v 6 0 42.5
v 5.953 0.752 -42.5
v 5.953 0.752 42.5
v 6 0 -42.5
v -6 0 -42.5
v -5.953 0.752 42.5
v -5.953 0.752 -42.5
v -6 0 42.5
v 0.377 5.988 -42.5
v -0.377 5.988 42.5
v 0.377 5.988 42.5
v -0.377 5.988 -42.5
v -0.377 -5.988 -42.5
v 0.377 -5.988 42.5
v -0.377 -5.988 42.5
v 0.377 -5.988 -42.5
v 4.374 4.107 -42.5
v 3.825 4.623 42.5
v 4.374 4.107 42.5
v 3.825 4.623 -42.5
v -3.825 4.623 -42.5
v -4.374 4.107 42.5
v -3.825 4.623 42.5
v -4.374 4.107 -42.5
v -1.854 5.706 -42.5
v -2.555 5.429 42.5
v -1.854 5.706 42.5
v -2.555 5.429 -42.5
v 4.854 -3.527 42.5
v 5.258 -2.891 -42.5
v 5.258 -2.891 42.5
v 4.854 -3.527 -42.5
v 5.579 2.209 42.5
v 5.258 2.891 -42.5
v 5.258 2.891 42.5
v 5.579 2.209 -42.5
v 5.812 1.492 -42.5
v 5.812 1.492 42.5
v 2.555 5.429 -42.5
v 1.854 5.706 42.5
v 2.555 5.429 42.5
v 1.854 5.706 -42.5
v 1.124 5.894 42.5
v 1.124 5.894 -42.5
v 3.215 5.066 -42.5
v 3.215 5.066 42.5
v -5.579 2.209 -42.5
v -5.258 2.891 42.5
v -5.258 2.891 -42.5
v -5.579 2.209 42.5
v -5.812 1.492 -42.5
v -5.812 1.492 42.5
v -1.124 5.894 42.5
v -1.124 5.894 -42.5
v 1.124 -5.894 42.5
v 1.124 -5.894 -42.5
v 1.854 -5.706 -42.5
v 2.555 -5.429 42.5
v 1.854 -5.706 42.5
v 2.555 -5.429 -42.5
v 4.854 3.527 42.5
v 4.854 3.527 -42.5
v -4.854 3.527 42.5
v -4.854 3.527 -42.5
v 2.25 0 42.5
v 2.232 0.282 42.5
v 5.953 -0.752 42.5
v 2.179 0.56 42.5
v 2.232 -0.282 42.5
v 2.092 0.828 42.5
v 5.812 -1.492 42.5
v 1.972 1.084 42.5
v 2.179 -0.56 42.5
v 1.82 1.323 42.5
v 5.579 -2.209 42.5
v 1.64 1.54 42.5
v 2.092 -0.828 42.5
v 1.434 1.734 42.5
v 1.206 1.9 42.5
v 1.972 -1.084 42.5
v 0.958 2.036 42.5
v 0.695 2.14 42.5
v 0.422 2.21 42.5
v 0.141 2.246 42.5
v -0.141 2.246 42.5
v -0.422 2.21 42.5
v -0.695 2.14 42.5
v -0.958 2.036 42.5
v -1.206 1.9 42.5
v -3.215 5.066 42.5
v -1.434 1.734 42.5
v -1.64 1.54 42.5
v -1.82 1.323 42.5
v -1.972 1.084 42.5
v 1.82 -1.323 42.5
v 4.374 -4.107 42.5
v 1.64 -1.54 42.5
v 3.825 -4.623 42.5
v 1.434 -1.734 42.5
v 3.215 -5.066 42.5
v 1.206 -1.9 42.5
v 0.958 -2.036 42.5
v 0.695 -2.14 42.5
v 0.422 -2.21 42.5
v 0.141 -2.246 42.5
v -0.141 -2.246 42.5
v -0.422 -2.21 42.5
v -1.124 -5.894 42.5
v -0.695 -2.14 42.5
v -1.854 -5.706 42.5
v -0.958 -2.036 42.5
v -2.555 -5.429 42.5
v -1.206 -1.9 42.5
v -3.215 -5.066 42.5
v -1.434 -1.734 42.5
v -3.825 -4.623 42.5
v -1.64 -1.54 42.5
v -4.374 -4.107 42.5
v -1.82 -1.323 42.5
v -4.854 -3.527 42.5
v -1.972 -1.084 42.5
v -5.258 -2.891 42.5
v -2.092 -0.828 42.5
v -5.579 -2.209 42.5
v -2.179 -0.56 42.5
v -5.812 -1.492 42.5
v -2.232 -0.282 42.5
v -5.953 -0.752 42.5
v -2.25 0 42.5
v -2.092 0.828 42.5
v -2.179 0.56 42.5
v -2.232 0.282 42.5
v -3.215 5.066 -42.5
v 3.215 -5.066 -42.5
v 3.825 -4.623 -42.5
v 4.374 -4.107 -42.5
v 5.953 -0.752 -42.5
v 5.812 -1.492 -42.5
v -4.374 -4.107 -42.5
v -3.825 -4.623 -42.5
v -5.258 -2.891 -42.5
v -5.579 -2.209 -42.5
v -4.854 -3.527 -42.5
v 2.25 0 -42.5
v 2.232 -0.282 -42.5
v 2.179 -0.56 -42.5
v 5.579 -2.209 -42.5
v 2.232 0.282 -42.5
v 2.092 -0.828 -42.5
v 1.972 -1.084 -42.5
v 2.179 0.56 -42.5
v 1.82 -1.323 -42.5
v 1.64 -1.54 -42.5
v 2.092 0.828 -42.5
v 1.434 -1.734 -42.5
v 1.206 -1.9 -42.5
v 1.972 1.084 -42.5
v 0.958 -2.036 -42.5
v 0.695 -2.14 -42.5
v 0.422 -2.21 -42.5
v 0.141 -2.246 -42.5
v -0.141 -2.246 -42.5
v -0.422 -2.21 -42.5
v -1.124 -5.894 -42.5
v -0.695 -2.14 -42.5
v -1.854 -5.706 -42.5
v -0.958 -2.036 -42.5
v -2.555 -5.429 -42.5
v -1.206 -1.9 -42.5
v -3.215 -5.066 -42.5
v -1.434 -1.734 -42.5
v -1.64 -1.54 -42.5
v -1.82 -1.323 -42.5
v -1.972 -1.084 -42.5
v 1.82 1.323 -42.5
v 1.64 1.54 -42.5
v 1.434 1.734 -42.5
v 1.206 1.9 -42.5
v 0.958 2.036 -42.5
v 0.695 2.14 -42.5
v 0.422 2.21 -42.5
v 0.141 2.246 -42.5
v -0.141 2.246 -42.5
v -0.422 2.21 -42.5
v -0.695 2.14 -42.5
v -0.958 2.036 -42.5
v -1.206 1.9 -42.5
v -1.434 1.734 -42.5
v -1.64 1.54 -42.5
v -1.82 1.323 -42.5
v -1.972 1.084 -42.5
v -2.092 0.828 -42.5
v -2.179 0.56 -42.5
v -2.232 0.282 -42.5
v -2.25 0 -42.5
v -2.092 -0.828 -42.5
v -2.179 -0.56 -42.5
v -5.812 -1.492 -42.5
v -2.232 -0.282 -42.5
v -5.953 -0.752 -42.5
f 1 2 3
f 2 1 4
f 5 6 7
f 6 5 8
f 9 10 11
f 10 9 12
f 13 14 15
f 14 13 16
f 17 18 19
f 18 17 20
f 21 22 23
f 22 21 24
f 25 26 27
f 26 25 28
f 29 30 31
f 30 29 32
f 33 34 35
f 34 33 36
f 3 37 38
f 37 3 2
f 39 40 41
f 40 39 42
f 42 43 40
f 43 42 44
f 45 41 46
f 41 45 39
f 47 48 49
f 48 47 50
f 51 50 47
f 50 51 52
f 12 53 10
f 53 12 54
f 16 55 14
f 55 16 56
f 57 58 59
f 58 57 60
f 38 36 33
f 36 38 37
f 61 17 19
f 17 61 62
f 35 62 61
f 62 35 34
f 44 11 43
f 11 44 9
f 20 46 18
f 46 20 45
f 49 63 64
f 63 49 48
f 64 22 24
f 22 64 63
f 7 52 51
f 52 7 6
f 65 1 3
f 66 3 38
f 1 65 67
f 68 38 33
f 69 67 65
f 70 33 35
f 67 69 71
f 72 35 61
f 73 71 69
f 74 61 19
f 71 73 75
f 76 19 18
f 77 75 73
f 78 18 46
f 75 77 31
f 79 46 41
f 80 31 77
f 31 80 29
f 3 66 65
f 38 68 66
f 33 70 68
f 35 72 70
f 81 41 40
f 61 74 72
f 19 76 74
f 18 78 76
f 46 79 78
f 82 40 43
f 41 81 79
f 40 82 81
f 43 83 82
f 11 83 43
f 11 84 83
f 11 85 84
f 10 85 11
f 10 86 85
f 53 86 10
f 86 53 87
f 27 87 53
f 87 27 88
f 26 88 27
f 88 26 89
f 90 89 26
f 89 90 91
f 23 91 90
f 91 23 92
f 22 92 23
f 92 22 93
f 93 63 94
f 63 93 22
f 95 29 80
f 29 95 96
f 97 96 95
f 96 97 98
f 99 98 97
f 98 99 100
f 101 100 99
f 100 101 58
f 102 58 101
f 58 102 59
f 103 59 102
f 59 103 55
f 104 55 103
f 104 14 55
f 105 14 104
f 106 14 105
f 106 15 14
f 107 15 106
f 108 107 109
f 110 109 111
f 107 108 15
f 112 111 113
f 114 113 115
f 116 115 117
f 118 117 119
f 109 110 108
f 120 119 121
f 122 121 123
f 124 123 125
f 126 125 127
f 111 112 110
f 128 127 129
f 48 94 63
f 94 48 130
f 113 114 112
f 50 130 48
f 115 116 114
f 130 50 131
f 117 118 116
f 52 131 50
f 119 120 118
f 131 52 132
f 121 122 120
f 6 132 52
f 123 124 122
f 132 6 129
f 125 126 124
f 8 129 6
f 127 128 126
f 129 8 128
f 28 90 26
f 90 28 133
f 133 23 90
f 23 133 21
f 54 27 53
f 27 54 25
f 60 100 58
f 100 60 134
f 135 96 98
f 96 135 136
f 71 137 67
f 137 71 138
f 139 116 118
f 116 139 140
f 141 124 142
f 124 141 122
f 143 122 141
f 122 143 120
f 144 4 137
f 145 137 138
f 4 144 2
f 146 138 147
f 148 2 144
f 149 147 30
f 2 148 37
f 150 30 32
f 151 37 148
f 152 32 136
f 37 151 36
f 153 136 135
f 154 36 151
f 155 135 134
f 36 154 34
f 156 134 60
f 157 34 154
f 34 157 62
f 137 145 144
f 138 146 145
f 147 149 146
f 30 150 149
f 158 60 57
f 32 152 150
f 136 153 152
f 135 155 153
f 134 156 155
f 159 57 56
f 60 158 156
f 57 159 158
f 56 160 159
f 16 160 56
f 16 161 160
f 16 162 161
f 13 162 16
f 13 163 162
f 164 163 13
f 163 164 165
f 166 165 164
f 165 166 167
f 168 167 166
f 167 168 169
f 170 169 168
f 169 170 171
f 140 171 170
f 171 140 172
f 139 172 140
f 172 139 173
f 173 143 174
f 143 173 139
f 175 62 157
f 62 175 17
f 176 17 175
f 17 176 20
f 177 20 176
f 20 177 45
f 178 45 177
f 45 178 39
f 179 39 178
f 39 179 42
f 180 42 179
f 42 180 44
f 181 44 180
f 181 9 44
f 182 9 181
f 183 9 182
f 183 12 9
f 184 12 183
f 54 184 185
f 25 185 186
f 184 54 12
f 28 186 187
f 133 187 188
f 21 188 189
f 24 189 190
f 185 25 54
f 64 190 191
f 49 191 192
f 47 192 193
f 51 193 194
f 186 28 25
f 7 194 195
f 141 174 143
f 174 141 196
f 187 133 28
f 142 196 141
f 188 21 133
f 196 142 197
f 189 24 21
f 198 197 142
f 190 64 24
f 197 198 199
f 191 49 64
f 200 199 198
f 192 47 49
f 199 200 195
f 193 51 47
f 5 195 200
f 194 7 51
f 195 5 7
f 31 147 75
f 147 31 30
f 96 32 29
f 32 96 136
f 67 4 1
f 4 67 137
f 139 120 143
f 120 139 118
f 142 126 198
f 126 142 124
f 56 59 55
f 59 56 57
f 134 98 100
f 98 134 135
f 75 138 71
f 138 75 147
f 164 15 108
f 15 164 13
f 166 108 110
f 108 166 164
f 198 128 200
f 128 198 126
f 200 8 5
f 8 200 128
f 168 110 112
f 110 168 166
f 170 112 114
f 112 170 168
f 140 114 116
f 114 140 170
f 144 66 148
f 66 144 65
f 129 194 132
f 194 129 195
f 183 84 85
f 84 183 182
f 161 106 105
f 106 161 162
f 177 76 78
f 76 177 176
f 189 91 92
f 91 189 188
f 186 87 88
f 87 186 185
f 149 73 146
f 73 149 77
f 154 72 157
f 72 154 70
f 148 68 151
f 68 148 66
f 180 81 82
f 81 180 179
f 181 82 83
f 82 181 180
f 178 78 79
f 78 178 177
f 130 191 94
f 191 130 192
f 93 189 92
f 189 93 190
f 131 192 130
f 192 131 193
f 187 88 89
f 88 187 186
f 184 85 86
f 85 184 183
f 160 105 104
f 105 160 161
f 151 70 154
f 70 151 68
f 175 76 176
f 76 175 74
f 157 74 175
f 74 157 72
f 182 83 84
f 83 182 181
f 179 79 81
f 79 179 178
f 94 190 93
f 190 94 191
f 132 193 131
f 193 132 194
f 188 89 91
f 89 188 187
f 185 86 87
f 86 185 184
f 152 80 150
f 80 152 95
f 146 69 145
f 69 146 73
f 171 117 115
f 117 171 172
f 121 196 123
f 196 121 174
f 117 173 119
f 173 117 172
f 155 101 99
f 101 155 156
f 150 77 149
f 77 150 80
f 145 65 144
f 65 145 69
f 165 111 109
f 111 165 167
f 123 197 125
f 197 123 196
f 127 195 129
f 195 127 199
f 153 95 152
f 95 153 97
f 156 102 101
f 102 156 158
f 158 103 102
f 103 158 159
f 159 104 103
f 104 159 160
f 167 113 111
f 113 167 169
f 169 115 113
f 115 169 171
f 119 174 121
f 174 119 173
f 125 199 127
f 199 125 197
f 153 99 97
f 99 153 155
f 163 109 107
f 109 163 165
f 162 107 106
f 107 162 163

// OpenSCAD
$fn = 50;


difference() {
	union() {
		translate(v = [0, 0, -42.5000000000]) {
			cylinder(h = 85, r = 6.0000000000);
		}
	}
	union() {
		translate(v = [0, 0, -100.0000000000]) {
			cylinder(h = 200, r = 2.2500000000);
		}
	}
}
